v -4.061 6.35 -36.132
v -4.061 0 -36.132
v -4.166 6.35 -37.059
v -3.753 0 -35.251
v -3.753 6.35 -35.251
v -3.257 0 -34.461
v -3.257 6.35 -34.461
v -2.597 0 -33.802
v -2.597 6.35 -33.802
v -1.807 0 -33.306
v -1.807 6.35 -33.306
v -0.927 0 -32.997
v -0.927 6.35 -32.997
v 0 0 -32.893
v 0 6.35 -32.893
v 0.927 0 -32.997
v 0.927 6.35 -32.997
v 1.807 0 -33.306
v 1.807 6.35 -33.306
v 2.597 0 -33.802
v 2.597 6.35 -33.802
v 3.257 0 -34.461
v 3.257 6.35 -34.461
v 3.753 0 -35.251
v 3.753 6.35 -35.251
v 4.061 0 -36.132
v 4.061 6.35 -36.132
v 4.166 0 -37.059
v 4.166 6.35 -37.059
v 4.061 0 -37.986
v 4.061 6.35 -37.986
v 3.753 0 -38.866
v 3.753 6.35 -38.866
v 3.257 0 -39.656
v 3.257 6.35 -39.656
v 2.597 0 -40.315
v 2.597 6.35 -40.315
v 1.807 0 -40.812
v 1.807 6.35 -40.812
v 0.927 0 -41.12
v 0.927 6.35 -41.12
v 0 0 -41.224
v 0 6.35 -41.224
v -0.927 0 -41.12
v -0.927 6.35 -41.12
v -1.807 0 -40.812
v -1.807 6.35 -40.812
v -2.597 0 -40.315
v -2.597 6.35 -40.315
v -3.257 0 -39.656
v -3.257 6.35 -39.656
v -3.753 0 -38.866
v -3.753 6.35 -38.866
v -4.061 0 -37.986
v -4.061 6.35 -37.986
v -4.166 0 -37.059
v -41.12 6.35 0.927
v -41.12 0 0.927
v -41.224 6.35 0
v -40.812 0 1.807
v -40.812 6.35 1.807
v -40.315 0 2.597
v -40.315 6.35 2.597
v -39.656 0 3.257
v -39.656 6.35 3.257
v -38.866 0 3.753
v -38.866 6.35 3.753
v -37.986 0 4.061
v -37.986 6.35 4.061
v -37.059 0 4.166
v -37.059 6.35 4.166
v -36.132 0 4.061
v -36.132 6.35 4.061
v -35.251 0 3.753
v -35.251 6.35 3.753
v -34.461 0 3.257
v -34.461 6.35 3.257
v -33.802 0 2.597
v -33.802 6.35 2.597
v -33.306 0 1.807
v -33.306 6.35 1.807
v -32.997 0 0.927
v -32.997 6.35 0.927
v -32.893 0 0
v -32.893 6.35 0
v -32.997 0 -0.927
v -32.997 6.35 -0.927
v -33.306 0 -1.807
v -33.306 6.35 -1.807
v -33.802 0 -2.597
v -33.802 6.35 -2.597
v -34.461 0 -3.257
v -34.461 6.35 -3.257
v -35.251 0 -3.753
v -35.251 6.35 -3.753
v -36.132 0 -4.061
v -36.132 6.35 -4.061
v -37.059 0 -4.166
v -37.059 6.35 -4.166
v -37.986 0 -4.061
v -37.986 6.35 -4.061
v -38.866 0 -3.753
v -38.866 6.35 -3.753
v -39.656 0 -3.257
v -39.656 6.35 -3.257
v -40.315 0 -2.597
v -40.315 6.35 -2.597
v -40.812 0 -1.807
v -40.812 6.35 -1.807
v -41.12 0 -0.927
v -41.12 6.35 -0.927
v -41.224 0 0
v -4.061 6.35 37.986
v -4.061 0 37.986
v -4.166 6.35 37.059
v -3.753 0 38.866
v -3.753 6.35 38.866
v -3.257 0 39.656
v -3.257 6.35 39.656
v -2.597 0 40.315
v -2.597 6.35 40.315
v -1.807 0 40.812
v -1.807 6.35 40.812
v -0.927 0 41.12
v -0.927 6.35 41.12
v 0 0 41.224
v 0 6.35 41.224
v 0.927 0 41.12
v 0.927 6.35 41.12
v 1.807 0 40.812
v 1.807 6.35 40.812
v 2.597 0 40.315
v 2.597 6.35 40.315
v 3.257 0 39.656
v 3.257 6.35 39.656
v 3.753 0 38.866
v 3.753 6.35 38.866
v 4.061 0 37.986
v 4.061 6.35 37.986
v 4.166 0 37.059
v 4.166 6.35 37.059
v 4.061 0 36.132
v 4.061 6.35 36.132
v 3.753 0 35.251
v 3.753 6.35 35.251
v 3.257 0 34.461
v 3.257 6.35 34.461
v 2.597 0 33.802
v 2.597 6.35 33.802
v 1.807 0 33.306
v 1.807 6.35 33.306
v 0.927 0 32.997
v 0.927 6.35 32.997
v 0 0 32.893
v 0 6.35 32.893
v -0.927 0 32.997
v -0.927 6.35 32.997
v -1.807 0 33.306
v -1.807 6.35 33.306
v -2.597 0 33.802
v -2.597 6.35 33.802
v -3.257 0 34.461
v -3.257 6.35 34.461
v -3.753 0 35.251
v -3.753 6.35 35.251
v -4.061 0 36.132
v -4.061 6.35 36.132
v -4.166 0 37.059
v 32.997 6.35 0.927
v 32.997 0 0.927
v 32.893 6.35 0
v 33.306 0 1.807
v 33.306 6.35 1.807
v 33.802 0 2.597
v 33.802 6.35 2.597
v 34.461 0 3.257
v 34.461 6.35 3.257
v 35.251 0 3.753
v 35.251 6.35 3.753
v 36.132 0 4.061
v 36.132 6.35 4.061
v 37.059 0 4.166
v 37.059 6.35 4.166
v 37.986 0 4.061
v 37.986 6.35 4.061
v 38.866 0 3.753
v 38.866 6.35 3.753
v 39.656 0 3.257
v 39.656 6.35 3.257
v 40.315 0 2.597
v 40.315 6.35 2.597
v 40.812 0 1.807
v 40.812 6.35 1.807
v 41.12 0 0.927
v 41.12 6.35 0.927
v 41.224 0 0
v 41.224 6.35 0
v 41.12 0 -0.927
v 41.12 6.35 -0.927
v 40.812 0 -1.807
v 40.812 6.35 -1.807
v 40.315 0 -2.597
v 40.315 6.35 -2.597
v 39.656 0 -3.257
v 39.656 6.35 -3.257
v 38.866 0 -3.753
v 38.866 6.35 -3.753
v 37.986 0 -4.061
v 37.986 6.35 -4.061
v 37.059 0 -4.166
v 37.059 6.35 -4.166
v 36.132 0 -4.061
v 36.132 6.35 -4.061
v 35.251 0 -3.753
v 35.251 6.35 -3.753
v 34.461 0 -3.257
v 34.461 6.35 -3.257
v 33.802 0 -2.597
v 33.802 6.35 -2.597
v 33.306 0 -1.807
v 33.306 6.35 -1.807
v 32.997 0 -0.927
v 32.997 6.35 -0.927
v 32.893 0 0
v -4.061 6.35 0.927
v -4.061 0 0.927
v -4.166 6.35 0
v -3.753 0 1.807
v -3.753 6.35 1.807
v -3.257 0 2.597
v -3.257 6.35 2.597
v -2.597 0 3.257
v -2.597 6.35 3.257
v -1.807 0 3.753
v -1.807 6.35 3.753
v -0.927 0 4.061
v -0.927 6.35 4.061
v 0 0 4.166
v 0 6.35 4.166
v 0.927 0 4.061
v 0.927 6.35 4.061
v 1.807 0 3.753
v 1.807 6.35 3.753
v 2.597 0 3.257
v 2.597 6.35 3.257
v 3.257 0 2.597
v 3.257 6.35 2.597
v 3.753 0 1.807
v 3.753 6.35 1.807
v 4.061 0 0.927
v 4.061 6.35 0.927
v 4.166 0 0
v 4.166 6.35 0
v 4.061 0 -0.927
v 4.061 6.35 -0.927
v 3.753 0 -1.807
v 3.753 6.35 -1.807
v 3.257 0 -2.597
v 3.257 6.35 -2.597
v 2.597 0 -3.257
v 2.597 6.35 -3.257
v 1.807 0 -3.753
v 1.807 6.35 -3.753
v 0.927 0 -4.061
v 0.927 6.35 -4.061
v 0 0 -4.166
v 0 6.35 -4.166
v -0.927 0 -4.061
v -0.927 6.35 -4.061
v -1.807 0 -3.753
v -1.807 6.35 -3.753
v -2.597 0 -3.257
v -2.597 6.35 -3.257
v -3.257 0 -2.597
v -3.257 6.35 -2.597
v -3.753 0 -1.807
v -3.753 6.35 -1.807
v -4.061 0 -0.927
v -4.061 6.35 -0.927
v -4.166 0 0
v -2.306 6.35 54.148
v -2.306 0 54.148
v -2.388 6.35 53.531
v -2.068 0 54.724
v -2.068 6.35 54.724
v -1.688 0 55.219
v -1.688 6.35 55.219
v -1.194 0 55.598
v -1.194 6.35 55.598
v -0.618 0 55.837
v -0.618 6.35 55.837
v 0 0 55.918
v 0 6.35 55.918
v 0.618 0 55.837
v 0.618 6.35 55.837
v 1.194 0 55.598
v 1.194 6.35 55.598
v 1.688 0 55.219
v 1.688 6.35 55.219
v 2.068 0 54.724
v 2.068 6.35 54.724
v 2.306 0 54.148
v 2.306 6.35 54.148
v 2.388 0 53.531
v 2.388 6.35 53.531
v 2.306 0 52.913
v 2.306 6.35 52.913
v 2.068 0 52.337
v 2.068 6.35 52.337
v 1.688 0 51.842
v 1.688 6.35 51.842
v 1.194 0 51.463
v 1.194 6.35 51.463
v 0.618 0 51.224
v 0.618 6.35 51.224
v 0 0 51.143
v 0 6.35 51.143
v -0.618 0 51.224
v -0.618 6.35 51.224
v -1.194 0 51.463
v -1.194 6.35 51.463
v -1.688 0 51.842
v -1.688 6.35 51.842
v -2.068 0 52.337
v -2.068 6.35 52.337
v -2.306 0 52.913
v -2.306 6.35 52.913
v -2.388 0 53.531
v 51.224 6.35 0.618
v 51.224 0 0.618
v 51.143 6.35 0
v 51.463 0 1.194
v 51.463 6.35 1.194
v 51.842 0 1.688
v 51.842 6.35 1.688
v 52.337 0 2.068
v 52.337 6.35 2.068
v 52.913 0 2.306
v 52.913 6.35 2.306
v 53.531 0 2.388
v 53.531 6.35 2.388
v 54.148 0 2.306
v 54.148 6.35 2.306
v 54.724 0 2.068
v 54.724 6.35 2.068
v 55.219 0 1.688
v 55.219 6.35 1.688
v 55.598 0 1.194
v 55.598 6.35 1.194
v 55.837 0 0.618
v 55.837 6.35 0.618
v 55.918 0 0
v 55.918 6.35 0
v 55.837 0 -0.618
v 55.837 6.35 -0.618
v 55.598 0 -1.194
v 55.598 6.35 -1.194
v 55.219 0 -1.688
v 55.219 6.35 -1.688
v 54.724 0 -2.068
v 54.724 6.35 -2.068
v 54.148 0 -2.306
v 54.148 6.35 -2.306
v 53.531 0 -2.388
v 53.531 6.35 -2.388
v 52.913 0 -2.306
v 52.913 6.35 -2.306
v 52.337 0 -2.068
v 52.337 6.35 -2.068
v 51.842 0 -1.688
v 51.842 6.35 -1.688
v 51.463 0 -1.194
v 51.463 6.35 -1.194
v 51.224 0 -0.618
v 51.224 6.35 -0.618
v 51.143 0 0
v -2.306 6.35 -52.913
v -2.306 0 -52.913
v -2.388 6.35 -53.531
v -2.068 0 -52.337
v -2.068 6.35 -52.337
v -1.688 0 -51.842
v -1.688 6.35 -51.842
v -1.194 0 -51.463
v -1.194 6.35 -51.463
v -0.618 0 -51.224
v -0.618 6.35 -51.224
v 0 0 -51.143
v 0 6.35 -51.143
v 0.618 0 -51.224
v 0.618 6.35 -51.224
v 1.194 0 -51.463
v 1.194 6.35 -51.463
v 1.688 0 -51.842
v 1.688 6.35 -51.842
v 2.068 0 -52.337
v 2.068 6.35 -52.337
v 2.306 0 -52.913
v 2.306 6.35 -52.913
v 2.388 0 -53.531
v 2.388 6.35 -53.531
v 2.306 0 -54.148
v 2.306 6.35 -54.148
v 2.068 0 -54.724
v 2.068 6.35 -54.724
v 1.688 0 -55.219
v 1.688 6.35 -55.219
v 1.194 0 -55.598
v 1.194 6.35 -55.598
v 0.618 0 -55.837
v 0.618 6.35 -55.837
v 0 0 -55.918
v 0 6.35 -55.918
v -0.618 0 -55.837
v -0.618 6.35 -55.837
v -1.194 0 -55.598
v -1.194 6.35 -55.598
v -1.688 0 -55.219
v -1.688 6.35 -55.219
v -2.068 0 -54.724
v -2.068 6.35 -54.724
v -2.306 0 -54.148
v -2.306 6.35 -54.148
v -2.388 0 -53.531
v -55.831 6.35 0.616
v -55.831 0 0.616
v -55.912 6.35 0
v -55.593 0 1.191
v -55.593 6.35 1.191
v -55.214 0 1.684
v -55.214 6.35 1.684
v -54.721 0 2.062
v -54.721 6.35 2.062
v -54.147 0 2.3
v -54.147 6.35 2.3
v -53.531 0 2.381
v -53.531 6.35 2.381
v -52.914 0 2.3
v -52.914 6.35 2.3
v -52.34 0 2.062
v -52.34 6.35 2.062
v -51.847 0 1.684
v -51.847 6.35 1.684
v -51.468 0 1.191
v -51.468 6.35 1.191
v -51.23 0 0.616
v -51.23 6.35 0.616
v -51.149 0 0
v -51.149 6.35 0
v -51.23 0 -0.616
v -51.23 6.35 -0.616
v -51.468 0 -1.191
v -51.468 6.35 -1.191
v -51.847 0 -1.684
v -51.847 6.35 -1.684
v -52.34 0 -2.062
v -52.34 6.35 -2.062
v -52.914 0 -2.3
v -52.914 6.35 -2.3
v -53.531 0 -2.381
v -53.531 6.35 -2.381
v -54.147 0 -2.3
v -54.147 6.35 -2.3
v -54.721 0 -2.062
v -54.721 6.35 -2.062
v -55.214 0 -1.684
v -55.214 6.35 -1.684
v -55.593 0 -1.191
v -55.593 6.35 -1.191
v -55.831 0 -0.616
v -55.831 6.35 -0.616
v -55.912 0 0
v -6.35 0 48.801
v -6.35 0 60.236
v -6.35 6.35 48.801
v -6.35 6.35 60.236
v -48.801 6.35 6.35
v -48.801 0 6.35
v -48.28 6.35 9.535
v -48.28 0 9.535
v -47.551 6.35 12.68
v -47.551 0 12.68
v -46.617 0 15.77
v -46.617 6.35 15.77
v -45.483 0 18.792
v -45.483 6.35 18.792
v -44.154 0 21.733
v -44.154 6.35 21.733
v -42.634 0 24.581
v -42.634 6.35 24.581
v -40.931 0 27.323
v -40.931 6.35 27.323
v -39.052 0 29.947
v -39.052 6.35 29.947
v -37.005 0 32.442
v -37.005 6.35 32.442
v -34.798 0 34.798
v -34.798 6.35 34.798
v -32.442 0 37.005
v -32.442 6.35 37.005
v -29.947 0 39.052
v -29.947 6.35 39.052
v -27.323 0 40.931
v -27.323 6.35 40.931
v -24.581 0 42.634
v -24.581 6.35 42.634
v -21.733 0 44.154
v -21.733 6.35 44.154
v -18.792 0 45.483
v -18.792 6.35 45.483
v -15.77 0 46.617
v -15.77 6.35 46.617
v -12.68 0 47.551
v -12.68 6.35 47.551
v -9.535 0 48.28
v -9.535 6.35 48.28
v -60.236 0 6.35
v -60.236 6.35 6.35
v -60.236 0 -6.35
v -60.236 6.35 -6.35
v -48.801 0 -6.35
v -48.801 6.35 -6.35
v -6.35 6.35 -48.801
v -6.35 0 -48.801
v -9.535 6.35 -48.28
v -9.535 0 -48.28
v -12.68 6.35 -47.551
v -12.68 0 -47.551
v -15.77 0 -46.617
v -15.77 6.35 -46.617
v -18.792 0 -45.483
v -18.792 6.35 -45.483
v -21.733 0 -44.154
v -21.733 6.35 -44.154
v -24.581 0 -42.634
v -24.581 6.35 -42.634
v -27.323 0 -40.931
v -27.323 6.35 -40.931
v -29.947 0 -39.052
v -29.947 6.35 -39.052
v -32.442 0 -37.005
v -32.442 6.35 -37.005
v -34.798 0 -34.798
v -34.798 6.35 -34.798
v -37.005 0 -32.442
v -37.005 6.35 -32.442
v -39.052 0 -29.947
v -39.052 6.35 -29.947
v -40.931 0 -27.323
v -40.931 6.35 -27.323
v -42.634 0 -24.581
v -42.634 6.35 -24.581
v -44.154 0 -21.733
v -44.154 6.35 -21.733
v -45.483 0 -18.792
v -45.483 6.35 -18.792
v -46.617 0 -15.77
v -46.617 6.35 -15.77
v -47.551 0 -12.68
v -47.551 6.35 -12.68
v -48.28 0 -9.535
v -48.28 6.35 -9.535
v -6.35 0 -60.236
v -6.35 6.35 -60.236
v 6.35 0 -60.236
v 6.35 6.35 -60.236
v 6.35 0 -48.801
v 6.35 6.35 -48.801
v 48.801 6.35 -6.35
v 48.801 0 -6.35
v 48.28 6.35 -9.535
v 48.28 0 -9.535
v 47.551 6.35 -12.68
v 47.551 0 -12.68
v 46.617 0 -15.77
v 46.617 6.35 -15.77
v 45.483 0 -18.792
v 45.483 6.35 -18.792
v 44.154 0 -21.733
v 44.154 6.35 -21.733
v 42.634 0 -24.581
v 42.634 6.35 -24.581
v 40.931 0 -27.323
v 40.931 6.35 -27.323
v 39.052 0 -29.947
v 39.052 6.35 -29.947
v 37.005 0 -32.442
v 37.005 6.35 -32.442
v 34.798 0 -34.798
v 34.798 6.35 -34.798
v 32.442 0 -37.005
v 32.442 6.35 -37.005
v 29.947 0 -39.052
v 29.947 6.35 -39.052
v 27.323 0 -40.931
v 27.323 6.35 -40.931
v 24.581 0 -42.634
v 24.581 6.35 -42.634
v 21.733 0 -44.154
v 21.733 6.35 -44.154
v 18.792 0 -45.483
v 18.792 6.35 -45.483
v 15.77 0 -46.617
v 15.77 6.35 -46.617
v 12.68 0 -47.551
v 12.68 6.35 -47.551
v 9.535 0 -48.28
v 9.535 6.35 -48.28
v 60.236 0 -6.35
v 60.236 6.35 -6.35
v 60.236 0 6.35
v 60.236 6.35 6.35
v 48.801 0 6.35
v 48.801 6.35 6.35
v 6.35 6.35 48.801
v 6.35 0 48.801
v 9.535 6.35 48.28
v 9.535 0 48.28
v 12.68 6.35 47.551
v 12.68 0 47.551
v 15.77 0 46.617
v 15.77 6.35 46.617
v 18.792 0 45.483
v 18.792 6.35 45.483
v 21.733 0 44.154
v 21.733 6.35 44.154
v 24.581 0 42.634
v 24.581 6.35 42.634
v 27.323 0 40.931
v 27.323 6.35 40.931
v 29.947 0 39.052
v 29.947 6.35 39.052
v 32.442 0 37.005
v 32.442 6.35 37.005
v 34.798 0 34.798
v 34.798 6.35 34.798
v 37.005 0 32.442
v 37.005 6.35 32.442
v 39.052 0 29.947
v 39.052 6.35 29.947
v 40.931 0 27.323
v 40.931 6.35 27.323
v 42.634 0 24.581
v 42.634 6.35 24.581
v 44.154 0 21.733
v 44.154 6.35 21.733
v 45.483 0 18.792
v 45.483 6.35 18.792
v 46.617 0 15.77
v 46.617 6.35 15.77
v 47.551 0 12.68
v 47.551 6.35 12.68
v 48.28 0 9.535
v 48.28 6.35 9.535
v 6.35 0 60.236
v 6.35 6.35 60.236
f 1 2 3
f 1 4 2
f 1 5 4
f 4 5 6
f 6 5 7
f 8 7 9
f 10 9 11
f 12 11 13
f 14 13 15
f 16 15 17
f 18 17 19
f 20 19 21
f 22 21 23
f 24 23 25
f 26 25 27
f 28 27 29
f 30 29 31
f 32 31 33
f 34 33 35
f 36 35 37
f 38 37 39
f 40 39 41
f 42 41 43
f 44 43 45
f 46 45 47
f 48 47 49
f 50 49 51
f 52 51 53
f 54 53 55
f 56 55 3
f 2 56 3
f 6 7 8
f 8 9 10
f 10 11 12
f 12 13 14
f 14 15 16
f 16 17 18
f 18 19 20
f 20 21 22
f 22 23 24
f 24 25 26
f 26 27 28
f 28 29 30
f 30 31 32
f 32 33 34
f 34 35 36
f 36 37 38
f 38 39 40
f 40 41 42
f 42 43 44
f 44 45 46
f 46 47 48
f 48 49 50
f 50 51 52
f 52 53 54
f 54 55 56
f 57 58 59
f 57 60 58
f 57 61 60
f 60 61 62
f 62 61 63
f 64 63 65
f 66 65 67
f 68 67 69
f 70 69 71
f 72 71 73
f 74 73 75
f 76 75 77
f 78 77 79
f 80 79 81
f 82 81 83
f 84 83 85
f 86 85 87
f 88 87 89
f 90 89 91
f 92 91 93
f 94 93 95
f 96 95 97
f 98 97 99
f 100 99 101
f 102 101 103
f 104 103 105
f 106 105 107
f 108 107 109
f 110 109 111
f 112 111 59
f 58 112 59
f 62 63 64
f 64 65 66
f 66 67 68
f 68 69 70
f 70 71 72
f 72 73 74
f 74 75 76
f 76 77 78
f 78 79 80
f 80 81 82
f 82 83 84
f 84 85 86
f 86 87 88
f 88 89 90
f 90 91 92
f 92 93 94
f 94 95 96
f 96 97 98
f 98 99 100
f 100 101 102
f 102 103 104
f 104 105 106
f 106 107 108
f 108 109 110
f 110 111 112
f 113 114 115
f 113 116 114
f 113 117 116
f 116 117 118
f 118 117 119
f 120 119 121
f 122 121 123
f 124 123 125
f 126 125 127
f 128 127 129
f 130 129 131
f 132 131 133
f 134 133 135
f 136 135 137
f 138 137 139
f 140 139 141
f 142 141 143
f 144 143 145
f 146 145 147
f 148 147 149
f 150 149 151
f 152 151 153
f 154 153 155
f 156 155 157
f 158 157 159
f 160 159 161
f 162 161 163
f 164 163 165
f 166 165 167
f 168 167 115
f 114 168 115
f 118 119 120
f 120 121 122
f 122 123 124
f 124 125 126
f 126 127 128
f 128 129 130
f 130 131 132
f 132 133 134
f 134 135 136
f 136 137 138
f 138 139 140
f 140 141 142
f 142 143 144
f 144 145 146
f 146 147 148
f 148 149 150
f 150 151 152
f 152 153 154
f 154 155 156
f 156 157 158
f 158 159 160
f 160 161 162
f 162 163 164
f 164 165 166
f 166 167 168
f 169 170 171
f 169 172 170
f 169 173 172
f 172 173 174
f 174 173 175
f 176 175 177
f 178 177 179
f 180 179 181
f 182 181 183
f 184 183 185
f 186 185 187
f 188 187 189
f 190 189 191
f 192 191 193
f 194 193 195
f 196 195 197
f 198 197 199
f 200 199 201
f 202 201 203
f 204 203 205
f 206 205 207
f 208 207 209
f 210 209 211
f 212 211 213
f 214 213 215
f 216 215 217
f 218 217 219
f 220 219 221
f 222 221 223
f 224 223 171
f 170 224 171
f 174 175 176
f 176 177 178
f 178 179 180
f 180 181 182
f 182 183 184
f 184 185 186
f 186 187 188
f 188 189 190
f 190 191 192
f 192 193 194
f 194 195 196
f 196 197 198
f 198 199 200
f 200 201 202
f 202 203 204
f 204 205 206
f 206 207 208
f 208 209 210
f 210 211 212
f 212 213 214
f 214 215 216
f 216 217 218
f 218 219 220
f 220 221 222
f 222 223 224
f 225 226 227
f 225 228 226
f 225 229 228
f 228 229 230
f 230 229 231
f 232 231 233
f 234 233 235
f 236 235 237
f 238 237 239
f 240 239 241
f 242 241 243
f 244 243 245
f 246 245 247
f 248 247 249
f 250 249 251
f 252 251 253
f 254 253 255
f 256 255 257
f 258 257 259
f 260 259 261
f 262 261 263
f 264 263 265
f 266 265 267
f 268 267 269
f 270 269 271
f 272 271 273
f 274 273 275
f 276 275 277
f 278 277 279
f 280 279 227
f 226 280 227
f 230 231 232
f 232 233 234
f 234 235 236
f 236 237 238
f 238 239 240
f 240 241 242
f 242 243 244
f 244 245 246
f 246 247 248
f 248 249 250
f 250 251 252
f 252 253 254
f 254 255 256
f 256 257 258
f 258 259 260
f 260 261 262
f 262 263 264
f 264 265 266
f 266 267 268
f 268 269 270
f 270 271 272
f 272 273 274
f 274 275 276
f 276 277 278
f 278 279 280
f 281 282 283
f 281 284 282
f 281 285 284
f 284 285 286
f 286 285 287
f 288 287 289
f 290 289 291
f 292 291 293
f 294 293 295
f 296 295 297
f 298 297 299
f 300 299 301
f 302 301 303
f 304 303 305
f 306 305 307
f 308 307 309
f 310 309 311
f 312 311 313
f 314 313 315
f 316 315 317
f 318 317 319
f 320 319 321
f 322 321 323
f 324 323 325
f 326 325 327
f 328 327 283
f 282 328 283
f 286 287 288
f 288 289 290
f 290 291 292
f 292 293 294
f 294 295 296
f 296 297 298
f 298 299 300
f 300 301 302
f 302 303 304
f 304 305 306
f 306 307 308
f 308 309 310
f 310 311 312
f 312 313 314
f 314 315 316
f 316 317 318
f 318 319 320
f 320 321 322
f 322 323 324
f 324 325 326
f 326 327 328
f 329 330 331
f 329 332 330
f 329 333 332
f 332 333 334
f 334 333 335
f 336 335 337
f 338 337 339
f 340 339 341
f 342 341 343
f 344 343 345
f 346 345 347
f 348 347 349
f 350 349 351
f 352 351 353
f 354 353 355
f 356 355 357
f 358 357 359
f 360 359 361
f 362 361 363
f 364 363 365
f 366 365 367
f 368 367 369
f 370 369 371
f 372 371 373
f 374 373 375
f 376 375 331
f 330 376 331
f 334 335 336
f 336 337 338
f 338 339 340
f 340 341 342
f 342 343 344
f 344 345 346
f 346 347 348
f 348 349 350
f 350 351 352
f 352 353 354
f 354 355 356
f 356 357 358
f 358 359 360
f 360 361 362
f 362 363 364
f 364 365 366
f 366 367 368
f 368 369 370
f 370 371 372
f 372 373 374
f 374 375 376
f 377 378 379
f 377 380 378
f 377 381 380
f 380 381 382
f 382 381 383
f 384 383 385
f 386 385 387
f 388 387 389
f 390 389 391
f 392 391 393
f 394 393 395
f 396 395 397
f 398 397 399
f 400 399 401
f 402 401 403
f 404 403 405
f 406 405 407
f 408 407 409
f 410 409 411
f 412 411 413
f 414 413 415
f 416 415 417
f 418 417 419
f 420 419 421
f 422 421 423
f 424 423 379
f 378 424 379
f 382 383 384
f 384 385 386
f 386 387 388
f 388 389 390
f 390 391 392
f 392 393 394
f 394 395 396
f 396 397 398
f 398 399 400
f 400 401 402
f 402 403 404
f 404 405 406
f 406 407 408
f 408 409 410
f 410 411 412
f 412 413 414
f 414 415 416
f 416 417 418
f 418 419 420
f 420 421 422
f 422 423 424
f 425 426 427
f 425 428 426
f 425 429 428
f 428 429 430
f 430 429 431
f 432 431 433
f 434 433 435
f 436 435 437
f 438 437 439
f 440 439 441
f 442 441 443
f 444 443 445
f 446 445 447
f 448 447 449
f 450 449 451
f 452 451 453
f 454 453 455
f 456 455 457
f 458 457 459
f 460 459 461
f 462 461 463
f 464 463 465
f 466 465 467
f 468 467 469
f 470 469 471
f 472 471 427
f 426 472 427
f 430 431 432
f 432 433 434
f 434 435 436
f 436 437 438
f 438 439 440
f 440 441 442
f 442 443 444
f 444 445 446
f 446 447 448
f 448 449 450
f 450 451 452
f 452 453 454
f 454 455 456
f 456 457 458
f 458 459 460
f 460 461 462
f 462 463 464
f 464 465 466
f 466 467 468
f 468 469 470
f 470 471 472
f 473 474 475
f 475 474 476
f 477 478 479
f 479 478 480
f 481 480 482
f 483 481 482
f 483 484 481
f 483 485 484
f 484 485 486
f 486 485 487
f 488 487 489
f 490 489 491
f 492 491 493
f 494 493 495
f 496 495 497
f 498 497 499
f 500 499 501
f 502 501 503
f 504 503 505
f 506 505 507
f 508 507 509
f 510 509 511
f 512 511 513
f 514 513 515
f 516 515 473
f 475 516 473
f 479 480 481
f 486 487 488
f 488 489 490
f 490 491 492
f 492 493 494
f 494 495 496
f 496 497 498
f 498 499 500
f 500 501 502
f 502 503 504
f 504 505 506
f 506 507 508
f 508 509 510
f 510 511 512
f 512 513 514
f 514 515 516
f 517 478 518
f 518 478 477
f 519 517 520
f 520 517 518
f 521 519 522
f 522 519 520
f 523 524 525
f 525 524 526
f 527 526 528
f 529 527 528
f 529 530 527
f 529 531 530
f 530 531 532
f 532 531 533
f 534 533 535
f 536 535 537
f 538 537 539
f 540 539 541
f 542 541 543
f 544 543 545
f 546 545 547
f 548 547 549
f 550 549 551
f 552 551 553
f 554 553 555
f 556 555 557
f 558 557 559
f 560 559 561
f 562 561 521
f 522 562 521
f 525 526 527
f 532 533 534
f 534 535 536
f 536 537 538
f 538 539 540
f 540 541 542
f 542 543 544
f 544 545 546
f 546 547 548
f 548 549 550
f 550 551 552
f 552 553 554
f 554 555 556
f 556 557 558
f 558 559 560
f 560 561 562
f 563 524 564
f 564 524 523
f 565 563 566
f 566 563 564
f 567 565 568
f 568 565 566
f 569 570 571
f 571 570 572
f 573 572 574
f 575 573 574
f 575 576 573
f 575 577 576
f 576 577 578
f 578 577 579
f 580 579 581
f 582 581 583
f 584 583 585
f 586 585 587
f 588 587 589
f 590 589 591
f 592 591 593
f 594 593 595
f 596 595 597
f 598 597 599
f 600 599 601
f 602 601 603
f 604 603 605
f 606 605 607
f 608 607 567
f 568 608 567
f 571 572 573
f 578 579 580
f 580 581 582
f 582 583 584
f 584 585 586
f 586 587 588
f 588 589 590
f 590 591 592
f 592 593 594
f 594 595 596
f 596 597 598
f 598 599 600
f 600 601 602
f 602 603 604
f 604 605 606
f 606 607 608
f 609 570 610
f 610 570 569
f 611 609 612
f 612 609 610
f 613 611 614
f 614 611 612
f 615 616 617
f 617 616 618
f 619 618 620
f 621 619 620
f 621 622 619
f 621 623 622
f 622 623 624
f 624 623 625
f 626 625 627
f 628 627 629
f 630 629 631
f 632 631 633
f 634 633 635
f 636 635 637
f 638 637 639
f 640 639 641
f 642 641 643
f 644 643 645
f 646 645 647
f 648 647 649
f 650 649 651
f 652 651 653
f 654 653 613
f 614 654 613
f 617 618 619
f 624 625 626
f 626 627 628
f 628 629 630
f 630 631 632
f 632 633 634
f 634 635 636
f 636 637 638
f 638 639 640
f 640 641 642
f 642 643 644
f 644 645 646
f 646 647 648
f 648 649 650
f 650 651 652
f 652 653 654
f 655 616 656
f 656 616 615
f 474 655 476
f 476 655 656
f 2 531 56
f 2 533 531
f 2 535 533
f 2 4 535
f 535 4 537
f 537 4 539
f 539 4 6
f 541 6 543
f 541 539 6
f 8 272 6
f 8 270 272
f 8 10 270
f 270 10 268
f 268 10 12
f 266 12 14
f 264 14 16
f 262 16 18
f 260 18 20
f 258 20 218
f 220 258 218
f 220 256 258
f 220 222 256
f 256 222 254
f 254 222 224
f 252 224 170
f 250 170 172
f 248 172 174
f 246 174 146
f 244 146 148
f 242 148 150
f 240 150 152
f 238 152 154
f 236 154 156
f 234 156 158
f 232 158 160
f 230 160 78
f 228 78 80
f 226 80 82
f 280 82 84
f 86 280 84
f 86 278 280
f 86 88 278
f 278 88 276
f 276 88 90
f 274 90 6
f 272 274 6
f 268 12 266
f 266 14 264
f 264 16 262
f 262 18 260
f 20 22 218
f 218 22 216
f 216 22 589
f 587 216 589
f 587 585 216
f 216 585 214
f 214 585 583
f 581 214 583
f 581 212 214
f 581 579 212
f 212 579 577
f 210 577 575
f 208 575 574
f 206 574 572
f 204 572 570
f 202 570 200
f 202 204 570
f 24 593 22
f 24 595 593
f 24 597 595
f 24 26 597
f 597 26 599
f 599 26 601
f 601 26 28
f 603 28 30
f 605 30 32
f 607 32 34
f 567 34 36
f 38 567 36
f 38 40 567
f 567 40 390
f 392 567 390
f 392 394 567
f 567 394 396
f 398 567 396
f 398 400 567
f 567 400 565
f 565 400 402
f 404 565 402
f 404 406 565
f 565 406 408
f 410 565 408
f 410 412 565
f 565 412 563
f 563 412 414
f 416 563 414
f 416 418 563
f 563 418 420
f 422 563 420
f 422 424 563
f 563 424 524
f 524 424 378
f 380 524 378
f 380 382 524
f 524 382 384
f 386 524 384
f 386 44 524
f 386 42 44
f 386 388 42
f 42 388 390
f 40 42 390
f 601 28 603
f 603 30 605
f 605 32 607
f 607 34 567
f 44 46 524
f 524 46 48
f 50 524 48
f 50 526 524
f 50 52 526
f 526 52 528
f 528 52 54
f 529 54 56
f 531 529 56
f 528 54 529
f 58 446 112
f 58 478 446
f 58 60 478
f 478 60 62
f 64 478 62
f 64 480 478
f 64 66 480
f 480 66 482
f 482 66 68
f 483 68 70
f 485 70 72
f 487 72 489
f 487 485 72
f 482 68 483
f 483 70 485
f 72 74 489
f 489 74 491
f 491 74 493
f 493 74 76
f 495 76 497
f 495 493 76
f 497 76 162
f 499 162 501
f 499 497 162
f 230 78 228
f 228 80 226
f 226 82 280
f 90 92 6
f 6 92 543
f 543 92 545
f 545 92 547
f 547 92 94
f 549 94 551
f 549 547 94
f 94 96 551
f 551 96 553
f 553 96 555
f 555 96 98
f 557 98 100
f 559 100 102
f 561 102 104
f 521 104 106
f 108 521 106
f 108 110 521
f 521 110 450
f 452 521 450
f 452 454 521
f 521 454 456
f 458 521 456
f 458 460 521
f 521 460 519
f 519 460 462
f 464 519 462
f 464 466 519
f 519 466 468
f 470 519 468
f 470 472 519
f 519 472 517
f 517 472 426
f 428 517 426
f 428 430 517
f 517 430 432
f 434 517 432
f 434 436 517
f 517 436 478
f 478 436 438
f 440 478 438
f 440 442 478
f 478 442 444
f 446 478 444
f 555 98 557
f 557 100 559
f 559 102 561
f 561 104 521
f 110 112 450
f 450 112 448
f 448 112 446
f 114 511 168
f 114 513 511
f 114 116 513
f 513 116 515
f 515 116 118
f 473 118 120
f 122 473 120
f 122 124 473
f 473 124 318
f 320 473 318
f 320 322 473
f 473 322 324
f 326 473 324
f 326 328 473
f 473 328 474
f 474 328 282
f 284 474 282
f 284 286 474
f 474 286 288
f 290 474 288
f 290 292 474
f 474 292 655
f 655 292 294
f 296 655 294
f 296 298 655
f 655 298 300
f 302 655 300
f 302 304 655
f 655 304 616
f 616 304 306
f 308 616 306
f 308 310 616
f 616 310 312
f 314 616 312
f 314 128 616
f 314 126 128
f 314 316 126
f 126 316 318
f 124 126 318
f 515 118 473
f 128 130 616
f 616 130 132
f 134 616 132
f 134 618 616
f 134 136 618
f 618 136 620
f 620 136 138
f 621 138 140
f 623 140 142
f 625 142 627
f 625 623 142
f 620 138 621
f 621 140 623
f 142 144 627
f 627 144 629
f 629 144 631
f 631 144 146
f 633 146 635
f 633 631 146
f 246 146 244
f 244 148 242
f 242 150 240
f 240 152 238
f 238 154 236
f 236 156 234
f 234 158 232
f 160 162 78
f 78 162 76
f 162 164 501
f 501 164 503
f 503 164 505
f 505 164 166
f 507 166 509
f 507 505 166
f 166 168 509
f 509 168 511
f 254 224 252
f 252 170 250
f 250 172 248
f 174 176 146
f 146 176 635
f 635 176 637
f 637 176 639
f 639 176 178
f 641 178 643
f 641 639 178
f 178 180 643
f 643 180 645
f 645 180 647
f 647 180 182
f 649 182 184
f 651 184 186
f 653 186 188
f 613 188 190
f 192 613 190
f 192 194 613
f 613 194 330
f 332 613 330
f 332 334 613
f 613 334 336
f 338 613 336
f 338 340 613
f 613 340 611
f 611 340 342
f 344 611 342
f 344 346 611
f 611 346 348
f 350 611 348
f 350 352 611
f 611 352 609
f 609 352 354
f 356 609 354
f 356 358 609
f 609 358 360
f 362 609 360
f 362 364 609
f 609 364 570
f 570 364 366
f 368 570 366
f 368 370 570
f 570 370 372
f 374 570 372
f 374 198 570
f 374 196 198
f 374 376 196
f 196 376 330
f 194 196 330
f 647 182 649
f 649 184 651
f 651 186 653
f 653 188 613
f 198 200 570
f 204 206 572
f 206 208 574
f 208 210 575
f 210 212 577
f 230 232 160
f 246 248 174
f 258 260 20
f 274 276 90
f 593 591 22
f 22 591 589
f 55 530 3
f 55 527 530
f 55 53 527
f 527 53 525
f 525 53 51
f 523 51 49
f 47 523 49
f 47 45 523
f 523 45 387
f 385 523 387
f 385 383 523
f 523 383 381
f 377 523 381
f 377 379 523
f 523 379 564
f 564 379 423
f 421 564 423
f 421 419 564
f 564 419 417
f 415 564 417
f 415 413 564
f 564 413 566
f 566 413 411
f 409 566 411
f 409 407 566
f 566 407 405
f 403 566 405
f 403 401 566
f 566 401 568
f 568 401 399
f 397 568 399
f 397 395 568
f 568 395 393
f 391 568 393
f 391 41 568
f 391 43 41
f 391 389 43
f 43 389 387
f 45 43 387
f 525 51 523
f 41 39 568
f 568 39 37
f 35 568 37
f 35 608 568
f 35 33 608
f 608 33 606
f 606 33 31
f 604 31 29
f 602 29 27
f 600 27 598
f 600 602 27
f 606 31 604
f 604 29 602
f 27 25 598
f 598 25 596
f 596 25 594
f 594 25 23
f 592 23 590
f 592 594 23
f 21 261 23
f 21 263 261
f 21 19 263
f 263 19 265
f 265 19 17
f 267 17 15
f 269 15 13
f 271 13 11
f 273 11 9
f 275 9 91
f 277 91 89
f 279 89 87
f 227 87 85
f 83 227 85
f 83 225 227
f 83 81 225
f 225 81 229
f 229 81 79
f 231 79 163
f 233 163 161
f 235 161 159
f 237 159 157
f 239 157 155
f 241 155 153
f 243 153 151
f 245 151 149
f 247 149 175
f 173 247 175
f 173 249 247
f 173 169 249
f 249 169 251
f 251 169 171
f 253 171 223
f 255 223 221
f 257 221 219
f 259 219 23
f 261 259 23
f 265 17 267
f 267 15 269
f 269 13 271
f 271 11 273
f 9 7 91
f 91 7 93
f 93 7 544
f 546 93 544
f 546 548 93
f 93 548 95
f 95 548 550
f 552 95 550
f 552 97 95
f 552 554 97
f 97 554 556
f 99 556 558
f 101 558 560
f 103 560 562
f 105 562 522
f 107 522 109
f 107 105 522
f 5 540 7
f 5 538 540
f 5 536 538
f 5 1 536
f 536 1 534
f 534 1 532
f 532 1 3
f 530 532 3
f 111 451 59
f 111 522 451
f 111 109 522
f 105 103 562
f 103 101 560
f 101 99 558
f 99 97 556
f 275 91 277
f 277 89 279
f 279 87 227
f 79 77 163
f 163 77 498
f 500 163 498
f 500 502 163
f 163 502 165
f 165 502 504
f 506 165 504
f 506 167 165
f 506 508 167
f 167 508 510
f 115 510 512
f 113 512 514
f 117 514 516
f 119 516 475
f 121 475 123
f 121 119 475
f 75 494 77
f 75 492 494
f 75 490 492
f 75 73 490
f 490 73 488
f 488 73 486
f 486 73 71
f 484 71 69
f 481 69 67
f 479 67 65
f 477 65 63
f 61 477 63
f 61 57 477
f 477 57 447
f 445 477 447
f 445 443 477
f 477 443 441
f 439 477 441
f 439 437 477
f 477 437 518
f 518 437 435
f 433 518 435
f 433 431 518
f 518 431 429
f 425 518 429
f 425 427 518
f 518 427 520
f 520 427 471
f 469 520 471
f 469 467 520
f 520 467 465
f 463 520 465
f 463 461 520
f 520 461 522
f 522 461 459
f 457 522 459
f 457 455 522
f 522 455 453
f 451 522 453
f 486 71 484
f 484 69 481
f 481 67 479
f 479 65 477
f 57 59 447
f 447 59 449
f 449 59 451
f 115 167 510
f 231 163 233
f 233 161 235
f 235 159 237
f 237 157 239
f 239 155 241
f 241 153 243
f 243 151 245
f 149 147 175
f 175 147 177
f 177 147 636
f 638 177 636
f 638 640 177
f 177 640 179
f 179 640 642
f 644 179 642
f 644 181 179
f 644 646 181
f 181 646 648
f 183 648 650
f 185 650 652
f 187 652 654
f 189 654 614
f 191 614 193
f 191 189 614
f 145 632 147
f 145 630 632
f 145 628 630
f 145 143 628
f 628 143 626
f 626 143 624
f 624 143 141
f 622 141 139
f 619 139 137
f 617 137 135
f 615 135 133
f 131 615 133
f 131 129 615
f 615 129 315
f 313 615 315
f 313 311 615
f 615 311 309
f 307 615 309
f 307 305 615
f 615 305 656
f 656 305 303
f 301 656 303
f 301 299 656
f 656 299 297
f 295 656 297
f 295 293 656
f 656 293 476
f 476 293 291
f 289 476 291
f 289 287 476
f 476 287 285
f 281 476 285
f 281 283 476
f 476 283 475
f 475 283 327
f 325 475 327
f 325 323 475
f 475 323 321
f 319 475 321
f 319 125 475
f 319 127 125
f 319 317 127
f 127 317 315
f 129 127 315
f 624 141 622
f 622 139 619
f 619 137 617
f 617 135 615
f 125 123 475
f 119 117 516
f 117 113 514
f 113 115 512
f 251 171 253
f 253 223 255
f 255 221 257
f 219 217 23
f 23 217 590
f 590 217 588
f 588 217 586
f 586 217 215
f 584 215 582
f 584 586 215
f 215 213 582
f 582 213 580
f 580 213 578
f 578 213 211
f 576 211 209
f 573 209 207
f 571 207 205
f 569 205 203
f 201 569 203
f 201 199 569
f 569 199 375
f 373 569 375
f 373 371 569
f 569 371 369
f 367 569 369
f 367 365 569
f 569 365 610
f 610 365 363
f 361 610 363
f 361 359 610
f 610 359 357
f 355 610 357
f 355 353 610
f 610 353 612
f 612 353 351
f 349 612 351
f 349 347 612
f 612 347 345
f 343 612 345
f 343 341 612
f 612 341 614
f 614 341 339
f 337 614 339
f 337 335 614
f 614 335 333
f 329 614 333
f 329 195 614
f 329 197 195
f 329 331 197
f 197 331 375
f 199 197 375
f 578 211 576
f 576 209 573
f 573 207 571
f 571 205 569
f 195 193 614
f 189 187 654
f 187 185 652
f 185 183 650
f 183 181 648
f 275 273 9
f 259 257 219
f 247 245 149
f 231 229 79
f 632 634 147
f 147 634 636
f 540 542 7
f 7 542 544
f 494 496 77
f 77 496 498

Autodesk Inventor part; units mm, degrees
ref_plane "YZ Plane" through (0, 0, 0) normal (1, 0, 0) x (0, 1, 0)
ref_plane "XZ Plane" through (0, 0, 0) normal (0, 1, 0) x (-1, 0, 0)
ref_plane "XY Plane" through (0, 0, 0) normal (0, 0, 1) x (1, 0, 0)
sketch "Sketch1" plane through (0, 0, 0) normal (0, 1, 0) x (-1, 0, 0)
  circle A0 centre (53.5305, 0) radius 2.3813
  circle A1 centre (0, -53.5305) radius 2.3876
  circle A2 centre (-53.5305, 0) radius 2.3876
  circle A3 centre (0, 53.5305) radius 2.3876
  line L0 (0, 60.2361) -> (-6.35, 60.2361)
  line L1 (-6.35, 60.2361) -> (6.35, 60.2361)
  line L2 (6.35, 60.2361) -> (6.35, 48.8011)
  line L3 (-6.35, 60.2361) -> (-6.35, 48.8011)
  line L4 (-60.2361, 0) -> (-60.2361, -6.35)
  line L5 (-60.2361, -6.35) -> (-60.2361, 6.35)
  line L6 (-60.2361, 6.35) -> (-48.8011, 6.35)
  line L7 (-60.2361, -6.35) -> (-48.8011, -6.35)
  line L8 (0, -60.2361) -> (-6.35, -60.2361)
  line L9 (-6.35, -60.2361) -> (6.35, -60.2361)
  line L10 (6.35, -60.2361) -> (6.35, -48.8011)
  line L11 (-6.35, -60.2361) -> (-6.35, -48.8011)
  line L12 (60.2361, 0) -> (60.2361, -6.35)
  line L13 (60.2361, -6.35) -> (60.2361, 6.35)
  line L14 (60.2361, 6.35) -> (48.8011, 6.35)
  line L15 (60.2361, -6.35) -> (48.8011, -6.35)
  arc A4 (6.35, -48.8011) -> (48.8011, -6.35) centre (0, 0) ccw
  arc A5 (-48.8011, -6.35) -> (-6.35, -48.8011) centre (0, 0) ccw
  arc A6 (48.8011, 6.35) -> (6.35, 48.8011) centre (0, 0) ccw
  arc A7 (-6.35, 48.8011) -> (-48.8011, 6.35) centre (0, 0) ccw
  circle A8 centre (0, 0) radius 4.1656
  circle A9 centre (-37.0586, 0) radius 4.1656
  circle A10 centre (0, 37.0586) radius 4.1656
  circle A11 centre (37.0586, 0) radius 4.1656
  circle A12 centre (0, -37.0586) radius 4.1656
  dimension "d6" = 4.7625
  dimension "d7" = 4.7752
  dimension "d8" = 4.7752
  dimension "d9" = 4.7752
  dimension "d11" = 6.7056
  dimension "d12" = 6.7056
  dimension "d13" = 6.7056
  dimension "d14" = 6.7056
  dimension "d15" = 6.35
  dimension "d16" = 12.7
  dimension "d17" = 6.35
  dimension "d18" = 12.7
  dimension "d19" = 6.35
  dimension "d20" = 12.7
  dimension "d21" = 6.35
  dimension "d22" = 12.7
  dimension "d23" = 8.3312
  dimension "d29" = 8.3312
  dimension "d30" = 8.3312
  dimension "d31" = 8.3312
  dimension "d32" = 8.3312
extrude "Extrusion1" add sketch "Sketch1" along normal blind 6.35
properties part number "Rotating Base mount"
